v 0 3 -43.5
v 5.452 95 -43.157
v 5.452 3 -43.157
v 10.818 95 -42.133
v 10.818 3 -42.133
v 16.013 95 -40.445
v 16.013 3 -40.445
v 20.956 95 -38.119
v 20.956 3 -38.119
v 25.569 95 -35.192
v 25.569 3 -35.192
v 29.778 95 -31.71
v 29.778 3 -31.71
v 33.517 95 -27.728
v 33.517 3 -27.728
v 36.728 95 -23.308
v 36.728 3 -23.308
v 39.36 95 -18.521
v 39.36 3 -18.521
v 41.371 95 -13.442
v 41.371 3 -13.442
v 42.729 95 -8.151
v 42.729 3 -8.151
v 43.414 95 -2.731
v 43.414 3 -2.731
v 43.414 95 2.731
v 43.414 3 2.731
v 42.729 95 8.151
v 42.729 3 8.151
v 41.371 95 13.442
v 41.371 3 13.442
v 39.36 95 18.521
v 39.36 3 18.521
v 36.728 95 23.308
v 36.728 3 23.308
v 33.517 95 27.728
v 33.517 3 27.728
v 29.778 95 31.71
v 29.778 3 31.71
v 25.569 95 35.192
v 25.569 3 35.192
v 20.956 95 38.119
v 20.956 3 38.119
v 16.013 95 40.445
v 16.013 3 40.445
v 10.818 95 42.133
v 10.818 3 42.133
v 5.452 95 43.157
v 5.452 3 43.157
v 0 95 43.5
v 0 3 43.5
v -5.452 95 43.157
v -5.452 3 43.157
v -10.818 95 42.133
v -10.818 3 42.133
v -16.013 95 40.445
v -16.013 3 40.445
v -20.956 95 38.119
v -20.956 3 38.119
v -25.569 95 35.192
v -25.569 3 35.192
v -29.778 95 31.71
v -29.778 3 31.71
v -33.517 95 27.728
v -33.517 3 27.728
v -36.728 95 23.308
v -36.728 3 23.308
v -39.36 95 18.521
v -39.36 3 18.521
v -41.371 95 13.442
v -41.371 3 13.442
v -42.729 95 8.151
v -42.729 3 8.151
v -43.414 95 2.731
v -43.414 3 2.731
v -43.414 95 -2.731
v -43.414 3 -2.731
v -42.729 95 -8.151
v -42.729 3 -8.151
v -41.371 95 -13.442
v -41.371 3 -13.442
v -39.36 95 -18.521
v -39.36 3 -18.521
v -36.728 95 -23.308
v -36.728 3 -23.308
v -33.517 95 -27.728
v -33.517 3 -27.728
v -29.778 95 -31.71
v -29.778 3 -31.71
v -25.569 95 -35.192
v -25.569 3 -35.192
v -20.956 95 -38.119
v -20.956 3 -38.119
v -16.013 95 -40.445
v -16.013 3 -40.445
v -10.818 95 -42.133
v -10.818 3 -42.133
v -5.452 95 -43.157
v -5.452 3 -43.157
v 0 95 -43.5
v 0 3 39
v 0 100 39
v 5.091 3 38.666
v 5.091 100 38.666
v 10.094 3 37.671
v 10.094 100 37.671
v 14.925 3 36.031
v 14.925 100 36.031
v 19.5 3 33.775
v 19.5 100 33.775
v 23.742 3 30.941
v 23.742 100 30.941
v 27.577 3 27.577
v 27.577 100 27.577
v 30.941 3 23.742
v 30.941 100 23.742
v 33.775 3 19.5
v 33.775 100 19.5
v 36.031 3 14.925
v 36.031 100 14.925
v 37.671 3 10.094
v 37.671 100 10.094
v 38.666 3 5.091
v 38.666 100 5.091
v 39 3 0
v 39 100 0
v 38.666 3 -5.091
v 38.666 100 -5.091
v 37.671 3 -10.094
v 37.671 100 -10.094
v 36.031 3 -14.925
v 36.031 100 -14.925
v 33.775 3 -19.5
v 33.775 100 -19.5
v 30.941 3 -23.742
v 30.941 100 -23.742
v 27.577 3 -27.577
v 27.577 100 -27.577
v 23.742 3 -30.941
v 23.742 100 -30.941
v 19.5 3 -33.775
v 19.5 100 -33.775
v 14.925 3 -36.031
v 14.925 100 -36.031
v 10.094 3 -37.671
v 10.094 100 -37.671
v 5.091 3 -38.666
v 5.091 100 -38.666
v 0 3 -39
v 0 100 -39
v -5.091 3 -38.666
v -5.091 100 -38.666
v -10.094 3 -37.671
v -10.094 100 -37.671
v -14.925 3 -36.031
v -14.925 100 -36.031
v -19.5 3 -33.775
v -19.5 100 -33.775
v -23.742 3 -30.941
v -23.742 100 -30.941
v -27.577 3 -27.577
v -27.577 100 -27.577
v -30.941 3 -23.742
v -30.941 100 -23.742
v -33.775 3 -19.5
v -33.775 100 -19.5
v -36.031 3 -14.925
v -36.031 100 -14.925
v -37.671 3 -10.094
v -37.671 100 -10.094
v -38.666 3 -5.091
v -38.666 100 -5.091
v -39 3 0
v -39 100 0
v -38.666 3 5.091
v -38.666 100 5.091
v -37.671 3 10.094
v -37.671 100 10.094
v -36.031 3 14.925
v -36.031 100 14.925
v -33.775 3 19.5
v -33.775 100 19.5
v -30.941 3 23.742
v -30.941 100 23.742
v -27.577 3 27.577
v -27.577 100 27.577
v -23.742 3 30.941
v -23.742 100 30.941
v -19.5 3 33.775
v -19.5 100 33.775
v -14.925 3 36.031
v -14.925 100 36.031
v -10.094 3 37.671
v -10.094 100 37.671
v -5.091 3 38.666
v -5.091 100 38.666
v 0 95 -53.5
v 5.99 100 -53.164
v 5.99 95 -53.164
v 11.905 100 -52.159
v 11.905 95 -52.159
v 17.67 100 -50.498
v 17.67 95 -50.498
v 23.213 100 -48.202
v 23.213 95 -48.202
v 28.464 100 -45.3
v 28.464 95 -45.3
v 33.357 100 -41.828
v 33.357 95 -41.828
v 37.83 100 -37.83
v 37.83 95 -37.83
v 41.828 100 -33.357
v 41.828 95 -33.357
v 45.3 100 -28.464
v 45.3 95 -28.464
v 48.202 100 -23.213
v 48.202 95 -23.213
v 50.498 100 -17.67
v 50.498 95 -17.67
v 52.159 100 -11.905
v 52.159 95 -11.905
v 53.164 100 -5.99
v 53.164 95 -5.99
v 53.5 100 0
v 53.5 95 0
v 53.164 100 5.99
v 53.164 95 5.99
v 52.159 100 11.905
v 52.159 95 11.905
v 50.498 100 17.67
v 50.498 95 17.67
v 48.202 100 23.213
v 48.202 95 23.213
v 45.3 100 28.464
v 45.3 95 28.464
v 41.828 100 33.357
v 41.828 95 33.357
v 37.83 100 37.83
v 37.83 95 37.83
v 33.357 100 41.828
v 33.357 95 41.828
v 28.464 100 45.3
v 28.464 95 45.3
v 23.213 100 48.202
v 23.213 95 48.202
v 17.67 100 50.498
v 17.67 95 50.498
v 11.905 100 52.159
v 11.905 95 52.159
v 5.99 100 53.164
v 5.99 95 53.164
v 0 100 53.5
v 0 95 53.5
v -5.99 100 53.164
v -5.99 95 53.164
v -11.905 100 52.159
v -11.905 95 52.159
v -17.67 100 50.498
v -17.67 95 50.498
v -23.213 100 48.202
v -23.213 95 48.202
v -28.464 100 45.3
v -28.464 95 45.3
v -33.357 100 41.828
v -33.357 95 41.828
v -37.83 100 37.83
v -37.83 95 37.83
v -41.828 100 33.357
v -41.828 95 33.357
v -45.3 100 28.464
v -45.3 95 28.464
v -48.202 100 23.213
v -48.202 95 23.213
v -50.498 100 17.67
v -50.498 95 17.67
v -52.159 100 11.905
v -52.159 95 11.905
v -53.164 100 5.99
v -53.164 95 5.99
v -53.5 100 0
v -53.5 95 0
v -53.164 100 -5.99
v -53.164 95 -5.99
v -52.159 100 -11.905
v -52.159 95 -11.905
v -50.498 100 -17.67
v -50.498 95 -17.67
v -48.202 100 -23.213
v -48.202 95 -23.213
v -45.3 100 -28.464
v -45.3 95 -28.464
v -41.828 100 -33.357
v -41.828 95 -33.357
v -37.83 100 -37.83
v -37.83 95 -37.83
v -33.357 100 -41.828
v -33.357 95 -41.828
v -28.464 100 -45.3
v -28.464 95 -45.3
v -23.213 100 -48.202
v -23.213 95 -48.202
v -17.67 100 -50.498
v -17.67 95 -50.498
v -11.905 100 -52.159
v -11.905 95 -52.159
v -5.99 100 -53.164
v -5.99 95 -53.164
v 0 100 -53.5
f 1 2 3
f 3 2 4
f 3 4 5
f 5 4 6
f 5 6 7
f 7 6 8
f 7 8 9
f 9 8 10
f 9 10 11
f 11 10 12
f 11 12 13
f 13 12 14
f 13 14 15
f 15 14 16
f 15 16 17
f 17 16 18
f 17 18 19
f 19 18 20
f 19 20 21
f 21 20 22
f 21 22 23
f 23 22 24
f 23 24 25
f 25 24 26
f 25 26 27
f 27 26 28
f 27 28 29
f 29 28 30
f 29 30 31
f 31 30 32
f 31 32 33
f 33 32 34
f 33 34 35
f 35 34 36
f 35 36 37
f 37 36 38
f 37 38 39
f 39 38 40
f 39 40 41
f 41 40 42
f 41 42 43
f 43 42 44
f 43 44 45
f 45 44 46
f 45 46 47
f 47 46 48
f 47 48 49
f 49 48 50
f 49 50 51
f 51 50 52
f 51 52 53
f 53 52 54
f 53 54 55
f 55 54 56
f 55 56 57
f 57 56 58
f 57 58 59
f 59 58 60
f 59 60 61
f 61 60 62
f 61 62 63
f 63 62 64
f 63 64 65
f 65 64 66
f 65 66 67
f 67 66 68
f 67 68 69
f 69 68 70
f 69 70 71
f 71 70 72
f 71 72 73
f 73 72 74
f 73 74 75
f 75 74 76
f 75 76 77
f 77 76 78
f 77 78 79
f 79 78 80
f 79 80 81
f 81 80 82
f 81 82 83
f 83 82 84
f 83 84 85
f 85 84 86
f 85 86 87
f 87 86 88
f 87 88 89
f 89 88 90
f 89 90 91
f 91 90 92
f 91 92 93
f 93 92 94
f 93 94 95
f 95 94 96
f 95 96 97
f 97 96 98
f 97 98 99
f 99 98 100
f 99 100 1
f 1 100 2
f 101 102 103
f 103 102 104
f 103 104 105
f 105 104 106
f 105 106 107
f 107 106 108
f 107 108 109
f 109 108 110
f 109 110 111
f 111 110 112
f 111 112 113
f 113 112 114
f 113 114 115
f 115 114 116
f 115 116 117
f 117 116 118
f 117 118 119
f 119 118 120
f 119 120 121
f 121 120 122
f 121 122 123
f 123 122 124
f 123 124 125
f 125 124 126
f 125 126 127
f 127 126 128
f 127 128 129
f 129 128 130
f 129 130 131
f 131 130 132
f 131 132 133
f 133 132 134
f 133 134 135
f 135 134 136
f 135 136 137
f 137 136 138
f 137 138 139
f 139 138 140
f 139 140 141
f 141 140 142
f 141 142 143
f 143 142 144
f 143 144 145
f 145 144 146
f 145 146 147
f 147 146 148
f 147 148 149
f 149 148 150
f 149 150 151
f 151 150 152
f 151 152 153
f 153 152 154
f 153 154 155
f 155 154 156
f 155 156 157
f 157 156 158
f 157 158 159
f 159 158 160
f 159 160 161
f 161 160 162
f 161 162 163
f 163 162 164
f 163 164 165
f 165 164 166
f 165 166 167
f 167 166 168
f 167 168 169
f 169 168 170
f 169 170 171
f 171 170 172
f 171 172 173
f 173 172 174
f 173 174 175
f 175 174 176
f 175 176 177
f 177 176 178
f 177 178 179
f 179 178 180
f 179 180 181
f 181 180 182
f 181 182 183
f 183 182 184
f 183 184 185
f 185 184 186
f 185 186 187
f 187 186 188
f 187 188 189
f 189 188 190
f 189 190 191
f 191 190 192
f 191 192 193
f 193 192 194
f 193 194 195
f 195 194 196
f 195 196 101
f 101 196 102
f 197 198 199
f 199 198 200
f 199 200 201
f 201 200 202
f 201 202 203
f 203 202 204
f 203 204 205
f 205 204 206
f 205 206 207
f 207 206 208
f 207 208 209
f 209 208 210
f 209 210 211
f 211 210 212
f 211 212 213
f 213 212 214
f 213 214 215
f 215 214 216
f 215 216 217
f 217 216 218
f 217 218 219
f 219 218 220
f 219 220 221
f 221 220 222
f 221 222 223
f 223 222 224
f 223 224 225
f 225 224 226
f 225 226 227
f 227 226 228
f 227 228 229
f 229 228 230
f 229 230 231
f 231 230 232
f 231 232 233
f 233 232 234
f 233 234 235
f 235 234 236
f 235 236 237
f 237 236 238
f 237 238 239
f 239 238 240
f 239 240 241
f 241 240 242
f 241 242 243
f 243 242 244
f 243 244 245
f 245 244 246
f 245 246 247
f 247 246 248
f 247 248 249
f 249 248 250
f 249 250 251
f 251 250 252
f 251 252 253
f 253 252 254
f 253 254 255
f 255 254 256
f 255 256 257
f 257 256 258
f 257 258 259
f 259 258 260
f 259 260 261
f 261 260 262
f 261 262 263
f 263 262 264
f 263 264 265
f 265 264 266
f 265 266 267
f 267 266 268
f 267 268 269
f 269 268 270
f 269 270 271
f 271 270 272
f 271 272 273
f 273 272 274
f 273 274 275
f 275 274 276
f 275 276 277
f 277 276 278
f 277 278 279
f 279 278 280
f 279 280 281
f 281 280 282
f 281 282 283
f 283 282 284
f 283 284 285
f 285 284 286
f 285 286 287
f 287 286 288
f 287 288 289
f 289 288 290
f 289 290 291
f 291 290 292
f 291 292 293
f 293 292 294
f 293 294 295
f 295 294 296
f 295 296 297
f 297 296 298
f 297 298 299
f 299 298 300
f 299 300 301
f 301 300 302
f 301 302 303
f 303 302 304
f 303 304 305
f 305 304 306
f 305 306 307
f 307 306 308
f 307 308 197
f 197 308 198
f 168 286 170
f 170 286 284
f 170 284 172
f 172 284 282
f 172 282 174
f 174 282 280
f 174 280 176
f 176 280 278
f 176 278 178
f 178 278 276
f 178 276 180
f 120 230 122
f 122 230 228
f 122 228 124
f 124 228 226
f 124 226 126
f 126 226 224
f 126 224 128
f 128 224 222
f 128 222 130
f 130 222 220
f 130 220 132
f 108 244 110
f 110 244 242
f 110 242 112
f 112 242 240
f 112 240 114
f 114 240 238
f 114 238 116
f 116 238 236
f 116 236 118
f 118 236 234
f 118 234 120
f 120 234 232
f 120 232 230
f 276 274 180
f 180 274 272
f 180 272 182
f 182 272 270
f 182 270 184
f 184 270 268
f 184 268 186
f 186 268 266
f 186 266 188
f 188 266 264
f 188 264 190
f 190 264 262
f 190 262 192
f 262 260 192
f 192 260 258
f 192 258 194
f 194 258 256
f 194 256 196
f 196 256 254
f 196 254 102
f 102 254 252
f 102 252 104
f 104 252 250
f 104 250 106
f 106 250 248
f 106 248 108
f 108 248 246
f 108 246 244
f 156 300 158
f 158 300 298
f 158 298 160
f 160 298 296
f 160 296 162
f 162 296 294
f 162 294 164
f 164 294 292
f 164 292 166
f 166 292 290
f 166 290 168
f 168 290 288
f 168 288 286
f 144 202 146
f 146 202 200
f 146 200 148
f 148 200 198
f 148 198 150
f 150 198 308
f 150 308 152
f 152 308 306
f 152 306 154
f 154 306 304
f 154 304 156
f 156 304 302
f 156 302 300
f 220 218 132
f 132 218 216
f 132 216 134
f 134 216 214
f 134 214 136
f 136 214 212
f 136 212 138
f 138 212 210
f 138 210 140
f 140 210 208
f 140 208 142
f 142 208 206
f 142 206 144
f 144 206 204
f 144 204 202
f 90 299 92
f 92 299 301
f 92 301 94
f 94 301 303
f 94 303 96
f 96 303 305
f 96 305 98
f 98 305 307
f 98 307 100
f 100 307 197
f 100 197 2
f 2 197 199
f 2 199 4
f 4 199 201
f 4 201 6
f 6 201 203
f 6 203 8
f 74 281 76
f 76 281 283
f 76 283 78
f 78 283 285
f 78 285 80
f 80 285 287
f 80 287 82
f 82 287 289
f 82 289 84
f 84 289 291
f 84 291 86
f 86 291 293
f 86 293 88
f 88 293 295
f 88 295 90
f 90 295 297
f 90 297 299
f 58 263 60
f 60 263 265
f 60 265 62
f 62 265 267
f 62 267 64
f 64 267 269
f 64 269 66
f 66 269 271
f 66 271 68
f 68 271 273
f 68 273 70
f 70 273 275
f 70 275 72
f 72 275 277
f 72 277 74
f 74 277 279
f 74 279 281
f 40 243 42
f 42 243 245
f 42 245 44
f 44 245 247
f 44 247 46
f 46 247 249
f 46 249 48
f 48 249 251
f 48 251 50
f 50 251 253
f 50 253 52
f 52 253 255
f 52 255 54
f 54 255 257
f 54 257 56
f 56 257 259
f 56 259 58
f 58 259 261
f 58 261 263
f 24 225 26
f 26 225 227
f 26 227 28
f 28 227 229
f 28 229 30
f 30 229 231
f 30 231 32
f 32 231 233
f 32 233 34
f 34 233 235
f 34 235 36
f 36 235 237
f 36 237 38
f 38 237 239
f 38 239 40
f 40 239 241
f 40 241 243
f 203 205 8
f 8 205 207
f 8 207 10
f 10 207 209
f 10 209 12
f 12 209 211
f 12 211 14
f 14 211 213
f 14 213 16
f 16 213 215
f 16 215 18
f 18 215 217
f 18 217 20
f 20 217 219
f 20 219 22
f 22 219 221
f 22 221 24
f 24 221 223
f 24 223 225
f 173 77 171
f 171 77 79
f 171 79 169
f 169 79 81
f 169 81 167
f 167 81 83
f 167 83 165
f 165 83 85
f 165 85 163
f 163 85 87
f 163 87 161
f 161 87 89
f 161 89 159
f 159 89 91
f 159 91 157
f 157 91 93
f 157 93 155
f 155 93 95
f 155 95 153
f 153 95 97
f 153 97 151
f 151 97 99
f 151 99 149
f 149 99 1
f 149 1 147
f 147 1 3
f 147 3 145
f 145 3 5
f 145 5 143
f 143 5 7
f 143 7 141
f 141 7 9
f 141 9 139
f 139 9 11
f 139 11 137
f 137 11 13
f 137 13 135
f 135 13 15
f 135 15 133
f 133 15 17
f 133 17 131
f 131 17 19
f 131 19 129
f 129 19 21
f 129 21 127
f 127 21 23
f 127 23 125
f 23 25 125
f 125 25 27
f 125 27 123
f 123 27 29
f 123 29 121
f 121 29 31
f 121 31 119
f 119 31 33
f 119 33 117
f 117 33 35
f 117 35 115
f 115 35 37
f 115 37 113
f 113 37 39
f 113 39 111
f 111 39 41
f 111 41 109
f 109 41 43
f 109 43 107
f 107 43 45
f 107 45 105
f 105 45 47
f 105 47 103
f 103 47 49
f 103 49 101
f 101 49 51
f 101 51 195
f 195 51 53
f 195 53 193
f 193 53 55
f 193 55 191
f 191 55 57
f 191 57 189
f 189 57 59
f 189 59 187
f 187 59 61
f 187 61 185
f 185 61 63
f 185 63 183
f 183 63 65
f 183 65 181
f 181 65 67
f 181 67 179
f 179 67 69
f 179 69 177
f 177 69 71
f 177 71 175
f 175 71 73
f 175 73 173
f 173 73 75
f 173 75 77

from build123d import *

# Parameters (mm, degrees)
SKETCH1_R           = 43.5
SKETCH1_R_2         = 38.5
BOSS_EXTRUDE3_DEPTH = 95
SKETCH3_R           = 53.5
BOSS_EXTRUDE4_DEPTH = 5
SKETCH4_R           = 38.5
CUT_EXTRUDE1_DEPTH  = 5
SKETCH5_R           = 39
CUT_EXTRUDE2_DEPTH  = 120
SKETCH6_R           = 43.5
CUT_EXTRUDE3_DEPTH  = 3


with BuildPart() as part:
    # Sketch1 → Boss-Extrude3 (new body)
    with BuildSketch(Plane(origin=(0, 0, 0), x_dir=(1, 0, 0), z_dir=(0, 1, 0))):
        with Locations(Location((0, 0, 0), (0, 0, 270))):
            Circle(SKETCH1_R)
        with Locations(Location((0, 0, 0), (0, 0, 270))):
            Circle(SKETCH1_R_2, mode=Mode.SUBTRACT)
    extrude(amount=BOSS_EXTRUDE3_DEPTH)

    # Sketch3 → Boss-Extrude4 (add)
    with BuildSketch(Plane(origin=(0, 95, 0), x_dir=(1, 0, 0), z_dir=(0, 1, 0))):
        with Locations(Location((0, 0, 0), (0, 0, 270))):
            Circle(SKETCH3_R)
    extrude(amount=BOSS_EXTRUDE4_DEPTH)

    # Sketch4 → Cut-Extrude1 (cut)
    with BuildSketch(Plane.XZ.offset(-95)):
        with Locations(Location((0, 0, 0), (0, 0, 270))):
            Circle(SKETCH4_R)
    extrude(amount=-CUT_EXTRUDE1_DEPTH, mode=Mode.SUBTRACT)

    # Sketch5 → Cut-Extrude2 (cut)
    with BuildSketch(Plane(origin=(0, 100, 0), x_dir=(1, 0, 0), z_dir=(0, 1, 0))):
        with Locations(Location((0, 0, 0), (0, 0, 270))):
            Circle(SKETCH5_R)
    extrude(amount=-CUT_EXTRUDE2_DEPTH, mode=Mode.SUBTRACT)

    # Sketch6 → Cut-Extrude3 (cut)
    with BuildSketch(Plane.XZ):
        with Locations(Location((0, 0, 0), (0, 0, 270))):
            Circle(SKETCH6_R)
    extrude(amount=-CUT_EXTRUDE3_DEPTH, mode=Mode.SUBTRACT)


solid = part.part
